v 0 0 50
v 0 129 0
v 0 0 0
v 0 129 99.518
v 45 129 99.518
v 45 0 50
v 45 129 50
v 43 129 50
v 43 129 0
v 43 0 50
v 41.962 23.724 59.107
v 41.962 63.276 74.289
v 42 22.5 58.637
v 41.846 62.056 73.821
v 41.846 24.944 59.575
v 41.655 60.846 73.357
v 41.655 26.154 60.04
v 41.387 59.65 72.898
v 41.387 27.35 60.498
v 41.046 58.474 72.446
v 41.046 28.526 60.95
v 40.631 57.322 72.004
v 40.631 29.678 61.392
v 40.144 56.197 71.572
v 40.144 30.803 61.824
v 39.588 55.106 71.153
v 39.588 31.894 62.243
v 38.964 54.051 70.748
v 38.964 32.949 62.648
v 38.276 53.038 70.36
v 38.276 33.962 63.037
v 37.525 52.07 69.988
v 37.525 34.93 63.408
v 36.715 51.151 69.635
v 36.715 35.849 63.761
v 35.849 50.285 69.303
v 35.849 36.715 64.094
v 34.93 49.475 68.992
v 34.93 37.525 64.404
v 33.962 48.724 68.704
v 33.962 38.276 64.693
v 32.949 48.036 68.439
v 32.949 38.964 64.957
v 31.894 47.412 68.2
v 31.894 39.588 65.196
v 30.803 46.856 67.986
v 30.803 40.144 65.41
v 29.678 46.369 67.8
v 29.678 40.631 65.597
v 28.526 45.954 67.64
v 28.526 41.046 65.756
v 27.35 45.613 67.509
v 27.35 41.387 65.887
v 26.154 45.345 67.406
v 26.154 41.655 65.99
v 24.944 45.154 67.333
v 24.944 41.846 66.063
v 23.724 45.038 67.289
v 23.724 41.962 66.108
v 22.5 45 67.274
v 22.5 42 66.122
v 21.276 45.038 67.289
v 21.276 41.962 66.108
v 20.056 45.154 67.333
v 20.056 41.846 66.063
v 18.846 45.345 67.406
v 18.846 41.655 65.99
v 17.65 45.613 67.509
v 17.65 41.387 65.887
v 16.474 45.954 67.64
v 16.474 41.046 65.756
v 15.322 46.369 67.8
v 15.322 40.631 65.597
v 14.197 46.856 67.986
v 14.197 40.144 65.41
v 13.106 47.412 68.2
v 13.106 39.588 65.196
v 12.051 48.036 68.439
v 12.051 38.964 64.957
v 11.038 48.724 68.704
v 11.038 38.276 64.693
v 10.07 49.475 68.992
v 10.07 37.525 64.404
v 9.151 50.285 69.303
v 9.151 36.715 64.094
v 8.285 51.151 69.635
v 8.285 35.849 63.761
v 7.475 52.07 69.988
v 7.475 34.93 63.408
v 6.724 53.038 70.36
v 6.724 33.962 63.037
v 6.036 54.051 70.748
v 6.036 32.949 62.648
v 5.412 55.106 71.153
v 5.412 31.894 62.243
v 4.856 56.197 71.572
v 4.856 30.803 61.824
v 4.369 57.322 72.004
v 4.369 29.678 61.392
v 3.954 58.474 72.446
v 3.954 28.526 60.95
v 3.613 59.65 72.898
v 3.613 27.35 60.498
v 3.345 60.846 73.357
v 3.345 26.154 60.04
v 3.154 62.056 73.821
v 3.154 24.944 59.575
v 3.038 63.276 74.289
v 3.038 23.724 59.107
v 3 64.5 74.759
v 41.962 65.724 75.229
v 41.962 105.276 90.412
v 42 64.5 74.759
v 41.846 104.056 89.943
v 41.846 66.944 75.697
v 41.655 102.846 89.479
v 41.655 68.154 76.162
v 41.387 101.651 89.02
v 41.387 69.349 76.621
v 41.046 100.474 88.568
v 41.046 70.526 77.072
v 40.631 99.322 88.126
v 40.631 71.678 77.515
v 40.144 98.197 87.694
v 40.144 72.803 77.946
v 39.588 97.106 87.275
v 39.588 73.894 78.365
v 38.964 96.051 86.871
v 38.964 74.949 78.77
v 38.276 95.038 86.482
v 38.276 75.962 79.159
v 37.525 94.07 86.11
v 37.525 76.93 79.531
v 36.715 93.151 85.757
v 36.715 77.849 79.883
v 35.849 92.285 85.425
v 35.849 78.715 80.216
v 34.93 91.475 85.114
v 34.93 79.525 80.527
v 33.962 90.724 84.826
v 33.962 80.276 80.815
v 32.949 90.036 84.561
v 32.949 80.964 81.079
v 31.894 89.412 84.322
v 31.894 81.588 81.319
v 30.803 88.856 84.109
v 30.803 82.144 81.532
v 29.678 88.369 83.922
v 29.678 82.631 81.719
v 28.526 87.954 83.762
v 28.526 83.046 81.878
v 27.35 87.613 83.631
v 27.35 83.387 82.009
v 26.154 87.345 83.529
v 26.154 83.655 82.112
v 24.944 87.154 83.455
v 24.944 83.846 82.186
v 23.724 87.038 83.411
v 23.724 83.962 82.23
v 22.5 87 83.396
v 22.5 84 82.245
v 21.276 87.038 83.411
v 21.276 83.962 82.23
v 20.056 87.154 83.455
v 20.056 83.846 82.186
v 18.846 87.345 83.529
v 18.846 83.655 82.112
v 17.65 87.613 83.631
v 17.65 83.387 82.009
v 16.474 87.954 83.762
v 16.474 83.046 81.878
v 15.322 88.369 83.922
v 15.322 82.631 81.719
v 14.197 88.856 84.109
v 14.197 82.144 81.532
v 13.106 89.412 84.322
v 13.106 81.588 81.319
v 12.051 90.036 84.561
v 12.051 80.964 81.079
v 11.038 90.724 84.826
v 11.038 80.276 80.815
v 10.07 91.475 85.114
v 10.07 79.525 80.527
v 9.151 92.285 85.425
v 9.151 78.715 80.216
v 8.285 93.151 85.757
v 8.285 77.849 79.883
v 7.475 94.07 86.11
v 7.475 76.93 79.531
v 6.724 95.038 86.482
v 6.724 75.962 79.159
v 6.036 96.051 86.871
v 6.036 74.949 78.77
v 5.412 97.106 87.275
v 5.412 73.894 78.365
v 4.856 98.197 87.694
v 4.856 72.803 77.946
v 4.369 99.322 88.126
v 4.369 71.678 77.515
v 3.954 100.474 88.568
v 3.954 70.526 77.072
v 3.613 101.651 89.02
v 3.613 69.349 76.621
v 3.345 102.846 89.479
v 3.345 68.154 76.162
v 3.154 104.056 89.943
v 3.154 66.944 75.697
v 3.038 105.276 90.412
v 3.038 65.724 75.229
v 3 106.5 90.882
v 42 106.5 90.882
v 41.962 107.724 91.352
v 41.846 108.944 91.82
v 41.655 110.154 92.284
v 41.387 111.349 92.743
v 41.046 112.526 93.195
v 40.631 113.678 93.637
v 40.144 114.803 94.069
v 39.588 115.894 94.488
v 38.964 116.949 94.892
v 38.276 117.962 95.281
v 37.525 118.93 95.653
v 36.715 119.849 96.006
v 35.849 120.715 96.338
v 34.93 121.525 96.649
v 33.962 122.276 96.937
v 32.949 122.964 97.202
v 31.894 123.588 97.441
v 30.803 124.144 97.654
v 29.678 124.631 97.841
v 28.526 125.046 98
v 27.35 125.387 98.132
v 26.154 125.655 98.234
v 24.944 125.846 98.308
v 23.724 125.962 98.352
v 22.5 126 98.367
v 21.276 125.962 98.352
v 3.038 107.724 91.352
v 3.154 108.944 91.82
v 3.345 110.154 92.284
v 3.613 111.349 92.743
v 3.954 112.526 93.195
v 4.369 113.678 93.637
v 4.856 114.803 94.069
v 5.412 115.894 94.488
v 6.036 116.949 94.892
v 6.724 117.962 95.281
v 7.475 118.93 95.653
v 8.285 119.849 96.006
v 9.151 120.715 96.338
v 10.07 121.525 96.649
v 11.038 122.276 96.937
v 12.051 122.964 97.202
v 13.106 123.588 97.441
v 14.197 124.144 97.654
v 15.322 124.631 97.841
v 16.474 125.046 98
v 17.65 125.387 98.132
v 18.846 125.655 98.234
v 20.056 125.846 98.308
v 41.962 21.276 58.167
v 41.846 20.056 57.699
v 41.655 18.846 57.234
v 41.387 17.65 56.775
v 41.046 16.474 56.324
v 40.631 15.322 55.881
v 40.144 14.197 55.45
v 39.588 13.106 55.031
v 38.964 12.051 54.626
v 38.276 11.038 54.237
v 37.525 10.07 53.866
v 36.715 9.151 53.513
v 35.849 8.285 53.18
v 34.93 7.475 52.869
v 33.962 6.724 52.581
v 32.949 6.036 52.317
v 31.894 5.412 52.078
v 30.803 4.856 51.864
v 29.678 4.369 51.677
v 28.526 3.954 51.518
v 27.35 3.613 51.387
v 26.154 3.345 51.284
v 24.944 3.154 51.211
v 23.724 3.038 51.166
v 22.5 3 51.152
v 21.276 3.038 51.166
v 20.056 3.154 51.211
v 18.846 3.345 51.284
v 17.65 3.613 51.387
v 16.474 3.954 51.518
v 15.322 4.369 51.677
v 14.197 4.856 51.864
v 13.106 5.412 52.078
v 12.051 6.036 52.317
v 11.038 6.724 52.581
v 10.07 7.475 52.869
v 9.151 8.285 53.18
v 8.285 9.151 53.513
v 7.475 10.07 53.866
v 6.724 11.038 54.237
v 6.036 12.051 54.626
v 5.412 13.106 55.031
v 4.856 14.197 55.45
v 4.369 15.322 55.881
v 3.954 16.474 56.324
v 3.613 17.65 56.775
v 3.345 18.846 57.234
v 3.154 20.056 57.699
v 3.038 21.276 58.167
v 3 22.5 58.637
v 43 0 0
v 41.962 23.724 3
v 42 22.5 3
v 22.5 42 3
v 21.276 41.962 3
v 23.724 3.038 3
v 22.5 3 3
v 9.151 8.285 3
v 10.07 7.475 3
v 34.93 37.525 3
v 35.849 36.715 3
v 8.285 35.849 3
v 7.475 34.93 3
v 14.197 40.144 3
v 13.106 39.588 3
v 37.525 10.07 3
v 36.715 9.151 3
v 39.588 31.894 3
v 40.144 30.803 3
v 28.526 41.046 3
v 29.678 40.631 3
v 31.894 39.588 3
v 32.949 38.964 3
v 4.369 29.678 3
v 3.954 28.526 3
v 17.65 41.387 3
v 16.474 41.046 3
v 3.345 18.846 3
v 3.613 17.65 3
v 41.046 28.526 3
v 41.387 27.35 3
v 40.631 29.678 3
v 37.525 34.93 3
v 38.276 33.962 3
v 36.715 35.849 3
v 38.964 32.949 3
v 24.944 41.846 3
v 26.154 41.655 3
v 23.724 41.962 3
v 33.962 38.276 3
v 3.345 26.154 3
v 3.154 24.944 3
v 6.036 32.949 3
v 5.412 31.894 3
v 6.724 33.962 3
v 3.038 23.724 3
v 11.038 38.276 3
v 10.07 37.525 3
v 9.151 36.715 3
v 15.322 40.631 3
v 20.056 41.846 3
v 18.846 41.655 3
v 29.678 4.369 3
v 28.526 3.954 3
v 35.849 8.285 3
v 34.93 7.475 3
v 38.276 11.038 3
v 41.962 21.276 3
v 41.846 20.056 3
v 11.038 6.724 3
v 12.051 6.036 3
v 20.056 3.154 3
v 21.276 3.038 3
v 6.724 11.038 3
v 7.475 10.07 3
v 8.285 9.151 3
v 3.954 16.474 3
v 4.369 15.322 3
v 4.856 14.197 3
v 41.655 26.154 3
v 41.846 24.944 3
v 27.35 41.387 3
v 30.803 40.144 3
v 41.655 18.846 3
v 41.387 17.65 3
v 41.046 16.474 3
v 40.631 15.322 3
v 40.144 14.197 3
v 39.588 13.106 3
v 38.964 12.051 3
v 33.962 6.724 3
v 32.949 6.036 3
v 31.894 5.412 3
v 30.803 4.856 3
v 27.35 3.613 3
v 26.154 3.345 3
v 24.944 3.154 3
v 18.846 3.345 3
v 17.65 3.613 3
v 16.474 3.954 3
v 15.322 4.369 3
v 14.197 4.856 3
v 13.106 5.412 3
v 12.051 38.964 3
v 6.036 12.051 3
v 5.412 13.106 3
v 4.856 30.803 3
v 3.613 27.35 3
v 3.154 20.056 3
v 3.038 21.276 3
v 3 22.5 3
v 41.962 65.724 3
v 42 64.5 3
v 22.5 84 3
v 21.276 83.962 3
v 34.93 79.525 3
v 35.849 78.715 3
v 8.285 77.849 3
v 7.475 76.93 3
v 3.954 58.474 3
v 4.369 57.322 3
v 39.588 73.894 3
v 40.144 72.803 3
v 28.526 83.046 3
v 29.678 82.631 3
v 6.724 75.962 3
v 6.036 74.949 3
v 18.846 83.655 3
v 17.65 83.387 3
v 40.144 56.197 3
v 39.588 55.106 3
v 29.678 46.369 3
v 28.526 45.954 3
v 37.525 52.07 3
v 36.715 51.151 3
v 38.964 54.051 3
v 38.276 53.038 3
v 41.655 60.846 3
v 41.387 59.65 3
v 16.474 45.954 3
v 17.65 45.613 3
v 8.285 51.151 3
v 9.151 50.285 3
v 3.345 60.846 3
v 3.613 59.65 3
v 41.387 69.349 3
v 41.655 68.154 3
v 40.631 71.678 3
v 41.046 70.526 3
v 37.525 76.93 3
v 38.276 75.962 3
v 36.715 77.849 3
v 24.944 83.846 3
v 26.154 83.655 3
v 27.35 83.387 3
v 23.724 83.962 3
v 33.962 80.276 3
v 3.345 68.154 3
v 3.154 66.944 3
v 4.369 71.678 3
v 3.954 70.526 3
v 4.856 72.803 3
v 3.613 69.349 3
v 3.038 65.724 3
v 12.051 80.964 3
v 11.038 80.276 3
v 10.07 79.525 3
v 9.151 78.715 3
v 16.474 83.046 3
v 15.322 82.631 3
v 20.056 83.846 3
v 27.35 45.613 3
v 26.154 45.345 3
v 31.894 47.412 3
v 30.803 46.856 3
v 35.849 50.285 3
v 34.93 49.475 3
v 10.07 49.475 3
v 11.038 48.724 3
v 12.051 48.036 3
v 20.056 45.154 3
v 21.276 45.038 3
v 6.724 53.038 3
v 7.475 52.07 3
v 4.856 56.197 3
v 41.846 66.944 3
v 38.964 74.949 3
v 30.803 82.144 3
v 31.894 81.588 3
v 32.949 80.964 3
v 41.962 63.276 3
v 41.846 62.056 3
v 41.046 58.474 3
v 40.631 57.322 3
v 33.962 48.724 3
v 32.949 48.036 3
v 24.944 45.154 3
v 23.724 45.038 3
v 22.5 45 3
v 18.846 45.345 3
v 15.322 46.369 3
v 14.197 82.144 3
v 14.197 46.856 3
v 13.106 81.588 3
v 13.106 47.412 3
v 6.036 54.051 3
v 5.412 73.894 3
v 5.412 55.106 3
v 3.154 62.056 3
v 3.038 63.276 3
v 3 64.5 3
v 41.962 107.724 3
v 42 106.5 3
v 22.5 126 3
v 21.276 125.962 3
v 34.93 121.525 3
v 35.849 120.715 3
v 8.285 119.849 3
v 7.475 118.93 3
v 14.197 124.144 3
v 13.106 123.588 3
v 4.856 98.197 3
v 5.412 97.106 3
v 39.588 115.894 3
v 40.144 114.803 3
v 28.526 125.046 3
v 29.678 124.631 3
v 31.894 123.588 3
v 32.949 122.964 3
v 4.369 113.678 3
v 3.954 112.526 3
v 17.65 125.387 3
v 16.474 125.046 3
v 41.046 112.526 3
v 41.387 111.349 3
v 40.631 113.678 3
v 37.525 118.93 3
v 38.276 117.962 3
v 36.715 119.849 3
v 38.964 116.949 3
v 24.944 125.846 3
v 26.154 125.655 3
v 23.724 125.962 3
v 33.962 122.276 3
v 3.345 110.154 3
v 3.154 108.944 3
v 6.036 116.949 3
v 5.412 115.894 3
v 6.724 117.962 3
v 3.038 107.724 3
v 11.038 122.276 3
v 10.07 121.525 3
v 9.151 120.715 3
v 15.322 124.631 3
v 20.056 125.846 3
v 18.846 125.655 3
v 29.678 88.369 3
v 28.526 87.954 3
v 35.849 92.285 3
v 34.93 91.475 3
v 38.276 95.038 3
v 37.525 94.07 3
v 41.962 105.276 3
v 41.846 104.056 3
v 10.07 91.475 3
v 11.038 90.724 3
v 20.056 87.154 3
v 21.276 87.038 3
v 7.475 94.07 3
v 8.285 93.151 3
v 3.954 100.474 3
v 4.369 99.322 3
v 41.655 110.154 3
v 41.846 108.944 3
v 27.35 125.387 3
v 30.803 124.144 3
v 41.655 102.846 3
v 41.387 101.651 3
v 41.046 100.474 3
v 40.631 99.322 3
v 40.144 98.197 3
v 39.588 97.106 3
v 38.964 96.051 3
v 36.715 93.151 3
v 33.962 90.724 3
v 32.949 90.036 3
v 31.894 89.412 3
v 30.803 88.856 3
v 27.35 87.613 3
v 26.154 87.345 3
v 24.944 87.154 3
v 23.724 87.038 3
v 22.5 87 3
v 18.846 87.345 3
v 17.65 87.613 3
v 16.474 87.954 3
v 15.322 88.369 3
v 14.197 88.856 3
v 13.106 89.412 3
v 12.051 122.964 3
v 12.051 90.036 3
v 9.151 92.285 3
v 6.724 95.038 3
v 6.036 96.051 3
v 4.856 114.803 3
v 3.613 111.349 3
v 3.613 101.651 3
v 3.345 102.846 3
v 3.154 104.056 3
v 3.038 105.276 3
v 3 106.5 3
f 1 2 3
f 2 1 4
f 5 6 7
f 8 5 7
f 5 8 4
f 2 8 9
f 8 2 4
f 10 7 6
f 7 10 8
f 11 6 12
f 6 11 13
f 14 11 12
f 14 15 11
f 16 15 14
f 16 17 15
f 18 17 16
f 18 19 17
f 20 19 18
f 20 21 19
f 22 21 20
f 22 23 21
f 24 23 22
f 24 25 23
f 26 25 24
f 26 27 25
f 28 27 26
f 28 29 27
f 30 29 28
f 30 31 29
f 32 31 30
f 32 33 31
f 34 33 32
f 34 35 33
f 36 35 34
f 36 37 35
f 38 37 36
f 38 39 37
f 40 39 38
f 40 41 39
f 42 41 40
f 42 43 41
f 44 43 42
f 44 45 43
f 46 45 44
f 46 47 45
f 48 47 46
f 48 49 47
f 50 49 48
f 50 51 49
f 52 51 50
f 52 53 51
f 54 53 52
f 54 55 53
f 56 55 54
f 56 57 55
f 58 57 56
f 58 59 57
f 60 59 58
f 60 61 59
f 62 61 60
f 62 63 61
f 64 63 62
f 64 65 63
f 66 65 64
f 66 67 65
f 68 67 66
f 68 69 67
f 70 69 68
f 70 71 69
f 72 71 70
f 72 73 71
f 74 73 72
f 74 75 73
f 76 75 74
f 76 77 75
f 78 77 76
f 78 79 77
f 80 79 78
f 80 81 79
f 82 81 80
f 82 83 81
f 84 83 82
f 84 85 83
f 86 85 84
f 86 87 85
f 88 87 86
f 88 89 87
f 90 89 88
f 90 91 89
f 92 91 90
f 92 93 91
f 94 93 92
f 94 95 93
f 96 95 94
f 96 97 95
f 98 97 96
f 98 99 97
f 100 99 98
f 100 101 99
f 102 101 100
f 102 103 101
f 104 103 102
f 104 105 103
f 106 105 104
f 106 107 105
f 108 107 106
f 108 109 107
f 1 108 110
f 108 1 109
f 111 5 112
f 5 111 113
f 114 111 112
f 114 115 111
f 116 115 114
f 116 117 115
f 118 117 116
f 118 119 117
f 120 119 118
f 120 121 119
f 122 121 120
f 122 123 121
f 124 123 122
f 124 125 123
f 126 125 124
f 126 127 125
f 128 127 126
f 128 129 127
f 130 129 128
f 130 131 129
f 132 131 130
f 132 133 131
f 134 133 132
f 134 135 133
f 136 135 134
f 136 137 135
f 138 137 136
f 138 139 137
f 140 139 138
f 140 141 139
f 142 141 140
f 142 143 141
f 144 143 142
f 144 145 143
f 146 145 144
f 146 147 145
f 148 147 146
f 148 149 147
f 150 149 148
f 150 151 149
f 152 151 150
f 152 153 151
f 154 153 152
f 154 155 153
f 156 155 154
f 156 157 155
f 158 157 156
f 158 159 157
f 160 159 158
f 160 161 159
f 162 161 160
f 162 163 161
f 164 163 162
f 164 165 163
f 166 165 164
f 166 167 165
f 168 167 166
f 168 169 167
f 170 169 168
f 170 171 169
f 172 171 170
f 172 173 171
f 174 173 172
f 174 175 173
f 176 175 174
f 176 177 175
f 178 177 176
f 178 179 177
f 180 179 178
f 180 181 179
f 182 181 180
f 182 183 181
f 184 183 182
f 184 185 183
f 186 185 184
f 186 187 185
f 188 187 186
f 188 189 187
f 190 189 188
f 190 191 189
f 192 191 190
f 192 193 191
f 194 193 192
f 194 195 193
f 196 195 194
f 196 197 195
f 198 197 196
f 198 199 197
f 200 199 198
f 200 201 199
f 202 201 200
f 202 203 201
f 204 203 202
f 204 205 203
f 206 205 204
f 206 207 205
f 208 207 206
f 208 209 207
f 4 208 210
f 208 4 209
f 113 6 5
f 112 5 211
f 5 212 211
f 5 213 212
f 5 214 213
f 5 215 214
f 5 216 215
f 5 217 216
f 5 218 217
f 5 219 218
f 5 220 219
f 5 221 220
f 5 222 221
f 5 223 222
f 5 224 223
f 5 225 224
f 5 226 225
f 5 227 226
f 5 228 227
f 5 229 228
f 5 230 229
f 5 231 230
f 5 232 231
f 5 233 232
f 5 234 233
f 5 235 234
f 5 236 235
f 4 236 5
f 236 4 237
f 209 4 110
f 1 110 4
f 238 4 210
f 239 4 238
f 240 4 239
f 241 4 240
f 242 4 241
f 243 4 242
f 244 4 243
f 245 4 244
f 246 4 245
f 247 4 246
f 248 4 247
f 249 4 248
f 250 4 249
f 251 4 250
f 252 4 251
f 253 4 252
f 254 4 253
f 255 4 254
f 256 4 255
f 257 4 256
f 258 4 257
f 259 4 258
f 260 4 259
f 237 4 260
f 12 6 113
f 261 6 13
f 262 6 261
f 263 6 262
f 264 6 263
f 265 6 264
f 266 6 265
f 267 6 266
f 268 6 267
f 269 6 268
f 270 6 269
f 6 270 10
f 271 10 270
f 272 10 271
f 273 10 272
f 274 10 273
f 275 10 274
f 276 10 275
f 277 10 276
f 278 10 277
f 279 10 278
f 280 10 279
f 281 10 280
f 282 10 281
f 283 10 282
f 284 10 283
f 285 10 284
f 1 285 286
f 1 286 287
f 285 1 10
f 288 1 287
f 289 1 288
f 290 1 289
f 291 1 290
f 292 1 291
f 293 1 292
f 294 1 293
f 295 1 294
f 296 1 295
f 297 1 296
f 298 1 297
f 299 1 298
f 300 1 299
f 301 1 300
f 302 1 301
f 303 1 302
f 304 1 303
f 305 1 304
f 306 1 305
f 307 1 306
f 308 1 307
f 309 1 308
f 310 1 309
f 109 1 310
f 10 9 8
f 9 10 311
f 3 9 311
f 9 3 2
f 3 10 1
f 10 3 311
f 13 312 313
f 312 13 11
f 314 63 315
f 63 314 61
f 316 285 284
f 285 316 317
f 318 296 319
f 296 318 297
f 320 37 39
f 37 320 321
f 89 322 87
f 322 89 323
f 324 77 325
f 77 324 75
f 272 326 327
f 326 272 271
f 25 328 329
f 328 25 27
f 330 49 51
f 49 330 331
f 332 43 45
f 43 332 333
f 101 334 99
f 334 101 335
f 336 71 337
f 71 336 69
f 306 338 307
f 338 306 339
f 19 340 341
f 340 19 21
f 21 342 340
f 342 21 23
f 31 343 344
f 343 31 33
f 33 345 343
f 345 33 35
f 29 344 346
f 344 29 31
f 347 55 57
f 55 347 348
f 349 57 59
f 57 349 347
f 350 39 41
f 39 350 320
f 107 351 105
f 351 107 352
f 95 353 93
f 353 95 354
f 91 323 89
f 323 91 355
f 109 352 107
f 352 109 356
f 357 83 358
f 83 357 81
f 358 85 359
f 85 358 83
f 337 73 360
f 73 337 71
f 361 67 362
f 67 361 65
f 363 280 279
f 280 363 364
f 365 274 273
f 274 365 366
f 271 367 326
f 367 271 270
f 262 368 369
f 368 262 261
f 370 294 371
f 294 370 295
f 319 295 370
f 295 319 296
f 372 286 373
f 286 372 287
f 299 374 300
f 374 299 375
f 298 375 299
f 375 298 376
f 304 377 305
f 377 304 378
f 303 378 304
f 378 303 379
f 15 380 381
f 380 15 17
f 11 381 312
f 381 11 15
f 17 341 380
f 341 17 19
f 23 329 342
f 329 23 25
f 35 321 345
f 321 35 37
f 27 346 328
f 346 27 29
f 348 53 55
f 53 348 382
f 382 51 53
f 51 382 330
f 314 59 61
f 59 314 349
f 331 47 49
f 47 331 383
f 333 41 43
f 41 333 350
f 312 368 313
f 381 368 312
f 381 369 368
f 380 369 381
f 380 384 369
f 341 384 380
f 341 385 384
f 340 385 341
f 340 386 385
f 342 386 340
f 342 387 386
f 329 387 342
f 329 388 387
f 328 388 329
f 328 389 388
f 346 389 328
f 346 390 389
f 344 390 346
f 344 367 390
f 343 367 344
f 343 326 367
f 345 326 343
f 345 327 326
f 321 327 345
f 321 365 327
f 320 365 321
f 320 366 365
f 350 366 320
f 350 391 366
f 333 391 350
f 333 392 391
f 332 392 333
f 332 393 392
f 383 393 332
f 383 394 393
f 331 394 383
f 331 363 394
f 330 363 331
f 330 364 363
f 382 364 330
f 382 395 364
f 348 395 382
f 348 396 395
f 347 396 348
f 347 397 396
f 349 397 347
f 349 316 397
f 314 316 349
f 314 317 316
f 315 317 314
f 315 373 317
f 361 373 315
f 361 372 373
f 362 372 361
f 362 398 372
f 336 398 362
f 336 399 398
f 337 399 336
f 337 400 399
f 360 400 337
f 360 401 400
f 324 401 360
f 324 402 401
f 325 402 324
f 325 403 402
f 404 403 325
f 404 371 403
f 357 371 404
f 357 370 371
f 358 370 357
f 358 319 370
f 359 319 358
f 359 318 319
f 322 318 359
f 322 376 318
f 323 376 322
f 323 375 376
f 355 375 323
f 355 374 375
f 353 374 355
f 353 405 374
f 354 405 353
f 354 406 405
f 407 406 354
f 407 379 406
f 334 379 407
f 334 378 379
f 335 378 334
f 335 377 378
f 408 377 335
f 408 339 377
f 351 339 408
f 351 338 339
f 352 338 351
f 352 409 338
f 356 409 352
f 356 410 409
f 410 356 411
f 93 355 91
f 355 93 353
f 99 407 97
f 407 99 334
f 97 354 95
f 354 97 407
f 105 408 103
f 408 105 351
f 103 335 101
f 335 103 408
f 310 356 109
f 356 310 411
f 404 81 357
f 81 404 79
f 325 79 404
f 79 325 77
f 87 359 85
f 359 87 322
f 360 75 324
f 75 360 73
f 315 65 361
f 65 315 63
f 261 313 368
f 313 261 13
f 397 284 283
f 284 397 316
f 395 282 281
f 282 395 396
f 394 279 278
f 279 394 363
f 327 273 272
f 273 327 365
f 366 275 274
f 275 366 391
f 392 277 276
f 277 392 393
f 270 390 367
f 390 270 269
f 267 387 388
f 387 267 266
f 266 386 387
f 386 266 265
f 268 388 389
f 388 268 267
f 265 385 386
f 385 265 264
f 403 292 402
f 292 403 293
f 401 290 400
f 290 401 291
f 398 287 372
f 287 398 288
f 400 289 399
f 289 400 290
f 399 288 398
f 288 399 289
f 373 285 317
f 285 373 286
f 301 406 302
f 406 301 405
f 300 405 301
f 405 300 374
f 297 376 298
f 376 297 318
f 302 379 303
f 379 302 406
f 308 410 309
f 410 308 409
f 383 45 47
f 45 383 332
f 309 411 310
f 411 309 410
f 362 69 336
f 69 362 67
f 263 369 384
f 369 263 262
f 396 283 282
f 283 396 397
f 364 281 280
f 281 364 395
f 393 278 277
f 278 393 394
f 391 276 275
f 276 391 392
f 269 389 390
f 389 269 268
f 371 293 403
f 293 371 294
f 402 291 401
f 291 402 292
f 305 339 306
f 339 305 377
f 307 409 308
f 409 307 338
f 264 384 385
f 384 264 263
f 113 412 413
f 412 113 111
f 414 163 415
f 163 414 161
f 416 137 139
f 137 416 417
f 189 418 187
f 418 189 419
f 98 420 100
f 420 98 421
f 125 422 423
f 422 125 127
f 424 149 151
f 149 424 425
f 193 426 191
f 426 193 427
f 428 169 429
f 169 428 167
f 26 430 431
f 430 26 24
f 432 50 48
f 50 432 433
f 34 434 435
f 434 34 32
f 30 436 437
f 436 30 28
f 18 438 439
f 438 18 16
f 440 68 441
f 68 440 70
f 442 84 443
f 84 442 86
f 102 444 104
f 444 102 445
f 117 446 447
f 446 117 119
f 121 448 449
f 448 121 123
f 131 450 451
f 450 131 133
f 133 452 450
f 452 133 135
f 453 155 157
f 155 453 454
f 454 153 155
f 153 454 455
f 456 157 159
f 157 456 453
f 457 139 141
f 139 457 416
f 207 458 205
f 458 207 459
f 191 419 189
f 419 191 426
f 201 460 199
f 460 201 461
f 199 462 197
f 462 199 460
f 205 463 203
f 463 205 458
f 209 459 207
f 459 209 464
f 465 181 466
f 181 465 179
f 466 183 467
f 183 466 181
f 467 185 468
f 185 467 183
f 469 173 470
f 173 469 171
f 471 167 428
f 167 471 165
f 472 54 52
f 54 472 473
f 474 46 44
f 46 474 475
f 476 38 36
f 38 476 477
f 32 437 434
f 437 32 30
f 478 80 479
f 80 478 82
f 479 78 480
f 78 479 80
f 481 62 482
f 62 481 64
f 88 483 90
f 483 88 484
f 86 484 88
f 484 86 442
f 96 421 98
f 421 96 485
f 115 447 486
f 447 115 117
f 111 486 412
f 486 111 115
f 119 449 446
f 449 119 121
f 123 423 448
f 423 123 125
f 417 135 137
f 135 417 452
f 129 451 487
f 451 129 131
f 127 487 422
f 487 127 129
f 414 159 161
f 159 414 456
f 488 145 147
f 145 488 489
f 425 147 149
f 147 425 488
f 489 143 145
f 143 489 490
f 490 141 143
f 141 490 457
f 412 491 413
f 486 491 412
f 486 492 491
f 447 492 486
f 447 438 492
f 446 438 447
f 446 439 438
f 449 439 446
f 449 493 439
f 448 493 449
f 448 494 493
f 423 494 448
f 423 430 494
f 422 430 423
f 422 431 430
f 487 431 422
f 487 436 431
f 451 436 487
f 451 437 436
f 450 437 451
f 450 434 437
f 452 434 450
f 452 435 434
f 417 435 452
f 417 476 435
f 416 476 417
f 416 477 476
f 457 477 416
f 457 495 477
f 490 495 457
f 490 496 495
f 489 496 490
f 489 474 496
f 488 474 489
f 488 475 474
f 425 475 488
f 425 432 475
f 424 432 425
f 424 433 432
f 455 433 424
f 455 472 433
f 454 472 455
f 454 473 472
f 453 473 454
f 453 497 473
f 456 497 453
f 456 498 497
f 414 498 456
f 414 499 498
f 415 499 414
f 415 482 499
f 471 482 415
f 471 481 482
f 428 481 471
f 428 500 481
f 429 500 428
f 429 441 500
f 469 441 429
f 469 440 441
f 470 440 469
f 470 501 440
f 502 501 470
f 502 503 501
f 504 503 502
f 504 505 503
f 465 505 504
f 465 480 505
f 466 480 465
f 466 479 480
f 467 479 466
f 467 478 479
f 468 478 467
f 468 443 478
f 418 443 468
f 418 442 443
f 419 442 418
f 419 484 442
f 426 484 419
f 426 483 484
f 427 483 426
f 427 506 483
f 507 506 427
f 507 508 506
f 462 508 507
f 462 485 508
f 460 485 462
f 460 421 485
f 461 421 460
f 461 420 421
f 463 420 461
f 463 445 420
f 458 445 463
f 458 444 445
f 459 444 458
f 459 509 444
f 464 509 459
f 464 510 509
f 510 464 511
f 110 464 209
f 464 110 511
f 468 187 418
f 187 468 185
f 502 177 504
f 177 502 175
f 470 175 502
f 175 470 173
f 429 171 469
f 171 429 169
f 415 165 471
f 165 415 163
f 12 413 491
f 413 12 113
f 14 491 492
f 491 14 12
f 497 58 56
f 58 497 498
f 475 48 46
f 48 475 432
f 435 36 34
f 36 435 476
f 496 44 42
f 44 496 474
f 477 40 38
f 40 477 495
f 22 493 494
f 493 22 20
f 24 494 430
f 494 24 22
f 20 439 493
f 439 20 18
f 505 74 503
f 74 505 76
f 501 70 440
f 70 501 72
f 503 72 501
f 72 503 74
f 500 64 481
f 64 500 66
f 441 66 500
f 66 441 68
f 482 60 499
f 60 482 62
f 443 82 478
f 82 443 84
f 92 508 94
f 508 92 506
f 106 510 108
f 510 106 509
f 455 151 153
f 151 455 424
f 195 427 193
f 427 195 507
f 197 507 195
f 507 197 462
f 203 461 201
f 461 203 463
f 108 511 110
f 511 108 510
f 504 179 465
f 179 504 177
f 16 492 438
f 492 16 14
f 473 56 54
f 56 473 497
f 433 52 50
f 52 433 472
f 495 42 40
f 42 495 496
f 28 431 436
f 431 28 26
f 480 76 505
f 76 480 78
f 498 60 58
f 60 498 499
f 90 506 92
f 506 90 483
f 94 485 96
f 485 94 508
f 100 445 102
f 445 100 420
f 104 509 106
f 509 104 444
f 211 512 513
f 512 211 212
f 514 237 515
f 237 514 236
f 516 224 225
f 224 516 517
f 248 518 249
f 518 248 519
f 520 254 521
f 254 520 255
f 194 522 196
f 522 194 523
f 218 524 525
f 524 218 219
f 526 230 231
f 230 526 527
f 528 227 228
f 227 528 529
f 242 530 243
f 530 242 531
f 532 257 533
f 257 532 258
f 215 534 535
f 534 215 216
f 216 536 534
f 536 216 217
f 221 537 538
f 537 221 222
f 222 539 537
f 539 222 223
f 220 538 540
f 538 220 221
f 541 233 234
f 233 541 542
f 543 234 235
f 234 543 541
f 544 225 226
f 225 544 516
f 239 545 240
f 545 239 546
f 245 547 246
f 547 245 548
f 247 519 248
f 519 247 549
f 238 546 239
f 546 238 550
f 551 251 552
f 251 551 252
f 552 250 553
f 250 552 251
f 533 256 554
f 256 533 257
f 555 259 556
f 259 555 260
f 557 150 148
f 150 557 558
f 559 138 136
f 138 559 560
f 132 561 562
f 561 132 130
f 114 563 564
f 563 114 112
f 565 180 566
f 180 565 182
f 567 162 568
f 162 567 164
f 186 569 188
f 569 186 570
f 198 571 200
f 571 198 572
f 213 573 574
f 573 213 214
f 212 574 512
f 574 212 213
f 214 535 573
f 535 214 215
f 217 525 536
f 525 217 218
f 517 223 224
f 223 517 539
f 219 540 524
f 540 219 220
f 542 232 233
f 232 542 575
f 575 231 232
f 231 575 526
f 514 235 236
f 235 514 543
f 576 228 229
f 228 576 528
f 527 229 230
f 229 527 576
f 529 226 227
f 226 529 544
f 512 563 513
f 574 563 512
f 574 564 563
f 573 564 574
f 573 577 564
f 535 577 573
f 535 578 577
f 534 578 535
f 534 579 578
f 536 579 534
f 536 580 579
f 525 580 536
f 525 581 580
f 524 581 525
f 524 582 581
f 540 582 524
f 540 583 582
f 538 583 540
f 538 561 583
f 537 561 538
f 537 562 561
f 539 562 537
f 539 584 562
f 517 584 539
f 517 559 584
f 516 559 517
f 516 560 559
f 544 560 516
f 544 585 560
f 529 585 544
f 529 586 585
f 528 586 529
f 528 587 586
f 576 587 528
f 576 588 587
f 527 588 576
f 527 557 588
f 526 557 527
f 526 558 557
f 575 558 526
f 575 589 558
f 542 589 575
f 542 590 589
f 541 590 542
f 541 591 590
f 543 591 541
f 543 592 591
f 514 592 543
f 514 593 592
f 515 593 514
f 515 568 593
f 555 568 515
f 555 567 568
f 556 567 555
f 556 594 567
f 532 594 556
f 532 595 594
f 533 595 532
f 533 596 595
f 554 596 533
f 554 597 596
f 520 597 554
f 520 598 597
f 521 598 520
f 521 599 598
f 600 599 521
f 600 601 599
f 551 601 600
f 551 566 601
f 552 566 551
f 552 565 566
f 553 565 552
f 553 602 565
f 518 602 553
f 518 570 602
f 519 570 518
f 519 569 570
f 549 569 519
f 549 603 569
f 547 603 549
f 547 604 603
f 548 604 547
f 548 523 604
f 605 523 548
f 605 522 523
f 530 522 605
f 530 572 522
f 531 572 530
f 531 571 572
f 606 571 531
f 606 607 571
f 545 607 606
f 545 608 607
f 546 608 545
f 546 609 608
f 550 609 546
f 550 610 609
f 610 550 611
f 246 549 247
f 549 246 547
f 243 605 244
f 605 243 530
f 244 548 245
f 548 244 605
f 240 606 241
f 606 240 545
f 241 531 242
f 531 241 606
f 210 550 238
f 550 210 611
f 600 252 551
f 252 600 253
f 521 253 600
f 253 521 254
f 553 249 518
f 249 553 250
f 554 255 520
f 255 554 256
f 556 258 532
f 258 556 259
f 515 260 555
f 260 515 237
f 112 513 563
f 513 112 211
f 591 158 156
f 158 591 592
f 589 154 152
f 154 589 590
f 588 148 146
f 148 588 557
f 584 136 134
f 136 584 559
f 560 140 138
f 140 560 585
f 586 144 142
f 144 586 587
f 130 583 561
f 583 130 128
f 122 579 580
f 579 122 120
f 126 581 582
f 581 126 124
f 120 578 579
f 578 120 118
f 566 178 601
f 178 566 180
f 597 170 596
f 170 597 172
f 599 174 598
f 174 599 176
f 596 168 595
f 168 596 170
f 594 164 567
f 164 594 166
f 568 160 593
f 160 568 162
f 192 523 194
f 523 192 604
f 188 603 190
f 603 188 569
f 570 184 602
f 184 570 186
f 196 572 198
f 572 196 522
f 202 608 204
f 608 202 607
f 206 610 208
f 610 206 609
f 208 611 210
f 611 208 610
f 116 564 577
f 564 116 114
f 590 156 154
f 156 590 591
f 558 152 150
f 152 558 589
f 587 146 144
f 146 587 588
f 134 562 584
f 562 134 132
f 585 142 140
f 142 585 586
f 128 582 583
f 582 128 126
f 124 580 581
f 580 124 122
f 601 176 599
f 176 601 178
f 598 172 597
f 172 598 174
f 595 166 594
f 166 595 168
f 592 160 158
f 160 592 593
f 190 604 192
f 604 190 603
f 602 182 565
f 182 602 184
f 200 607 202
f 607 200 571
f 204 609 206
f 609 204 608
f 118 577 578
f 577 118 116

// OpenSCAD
//Chisel Holder

chiselDiam = 35;
buffer = 2;
thickness = 3;

module TrianglePris(){
    difference(){
        cube([thickness*2 + chiselDiam + 2*buffer, thickness*4 + 3 * (chiselDiam + buffer*2), 50]);
        
        rotate([21, 0, 0])
        cube([thickness*2 + chiselDiam + 2*buffer, 200, 50]);
    }
}

module holder(){
    
    difference(){
        
        union(){
            cube([thickness*2 + chiselDiam + buffer, thickness*4 + 3 * (chiselDiam + buffer*2), 50]);
            
            translate([0, 0, 50])
            TrianglePris();
        }
        
        union(){
            for(i = [0:2]){
                translate([thickness + chiselDiam/2 + buffer, 
                (thickness + chiselDiam/2 + buffer) + i*(thickness + chiselDiam + buffer*2), 
                thickness])
                cylinder(100, chiselDiam/2 + buffer, chiselDiam/2 + buffer, $fn = 100);
            }
        }
    }
    
}





module main(){
    
    holder();
    
    
}main();
